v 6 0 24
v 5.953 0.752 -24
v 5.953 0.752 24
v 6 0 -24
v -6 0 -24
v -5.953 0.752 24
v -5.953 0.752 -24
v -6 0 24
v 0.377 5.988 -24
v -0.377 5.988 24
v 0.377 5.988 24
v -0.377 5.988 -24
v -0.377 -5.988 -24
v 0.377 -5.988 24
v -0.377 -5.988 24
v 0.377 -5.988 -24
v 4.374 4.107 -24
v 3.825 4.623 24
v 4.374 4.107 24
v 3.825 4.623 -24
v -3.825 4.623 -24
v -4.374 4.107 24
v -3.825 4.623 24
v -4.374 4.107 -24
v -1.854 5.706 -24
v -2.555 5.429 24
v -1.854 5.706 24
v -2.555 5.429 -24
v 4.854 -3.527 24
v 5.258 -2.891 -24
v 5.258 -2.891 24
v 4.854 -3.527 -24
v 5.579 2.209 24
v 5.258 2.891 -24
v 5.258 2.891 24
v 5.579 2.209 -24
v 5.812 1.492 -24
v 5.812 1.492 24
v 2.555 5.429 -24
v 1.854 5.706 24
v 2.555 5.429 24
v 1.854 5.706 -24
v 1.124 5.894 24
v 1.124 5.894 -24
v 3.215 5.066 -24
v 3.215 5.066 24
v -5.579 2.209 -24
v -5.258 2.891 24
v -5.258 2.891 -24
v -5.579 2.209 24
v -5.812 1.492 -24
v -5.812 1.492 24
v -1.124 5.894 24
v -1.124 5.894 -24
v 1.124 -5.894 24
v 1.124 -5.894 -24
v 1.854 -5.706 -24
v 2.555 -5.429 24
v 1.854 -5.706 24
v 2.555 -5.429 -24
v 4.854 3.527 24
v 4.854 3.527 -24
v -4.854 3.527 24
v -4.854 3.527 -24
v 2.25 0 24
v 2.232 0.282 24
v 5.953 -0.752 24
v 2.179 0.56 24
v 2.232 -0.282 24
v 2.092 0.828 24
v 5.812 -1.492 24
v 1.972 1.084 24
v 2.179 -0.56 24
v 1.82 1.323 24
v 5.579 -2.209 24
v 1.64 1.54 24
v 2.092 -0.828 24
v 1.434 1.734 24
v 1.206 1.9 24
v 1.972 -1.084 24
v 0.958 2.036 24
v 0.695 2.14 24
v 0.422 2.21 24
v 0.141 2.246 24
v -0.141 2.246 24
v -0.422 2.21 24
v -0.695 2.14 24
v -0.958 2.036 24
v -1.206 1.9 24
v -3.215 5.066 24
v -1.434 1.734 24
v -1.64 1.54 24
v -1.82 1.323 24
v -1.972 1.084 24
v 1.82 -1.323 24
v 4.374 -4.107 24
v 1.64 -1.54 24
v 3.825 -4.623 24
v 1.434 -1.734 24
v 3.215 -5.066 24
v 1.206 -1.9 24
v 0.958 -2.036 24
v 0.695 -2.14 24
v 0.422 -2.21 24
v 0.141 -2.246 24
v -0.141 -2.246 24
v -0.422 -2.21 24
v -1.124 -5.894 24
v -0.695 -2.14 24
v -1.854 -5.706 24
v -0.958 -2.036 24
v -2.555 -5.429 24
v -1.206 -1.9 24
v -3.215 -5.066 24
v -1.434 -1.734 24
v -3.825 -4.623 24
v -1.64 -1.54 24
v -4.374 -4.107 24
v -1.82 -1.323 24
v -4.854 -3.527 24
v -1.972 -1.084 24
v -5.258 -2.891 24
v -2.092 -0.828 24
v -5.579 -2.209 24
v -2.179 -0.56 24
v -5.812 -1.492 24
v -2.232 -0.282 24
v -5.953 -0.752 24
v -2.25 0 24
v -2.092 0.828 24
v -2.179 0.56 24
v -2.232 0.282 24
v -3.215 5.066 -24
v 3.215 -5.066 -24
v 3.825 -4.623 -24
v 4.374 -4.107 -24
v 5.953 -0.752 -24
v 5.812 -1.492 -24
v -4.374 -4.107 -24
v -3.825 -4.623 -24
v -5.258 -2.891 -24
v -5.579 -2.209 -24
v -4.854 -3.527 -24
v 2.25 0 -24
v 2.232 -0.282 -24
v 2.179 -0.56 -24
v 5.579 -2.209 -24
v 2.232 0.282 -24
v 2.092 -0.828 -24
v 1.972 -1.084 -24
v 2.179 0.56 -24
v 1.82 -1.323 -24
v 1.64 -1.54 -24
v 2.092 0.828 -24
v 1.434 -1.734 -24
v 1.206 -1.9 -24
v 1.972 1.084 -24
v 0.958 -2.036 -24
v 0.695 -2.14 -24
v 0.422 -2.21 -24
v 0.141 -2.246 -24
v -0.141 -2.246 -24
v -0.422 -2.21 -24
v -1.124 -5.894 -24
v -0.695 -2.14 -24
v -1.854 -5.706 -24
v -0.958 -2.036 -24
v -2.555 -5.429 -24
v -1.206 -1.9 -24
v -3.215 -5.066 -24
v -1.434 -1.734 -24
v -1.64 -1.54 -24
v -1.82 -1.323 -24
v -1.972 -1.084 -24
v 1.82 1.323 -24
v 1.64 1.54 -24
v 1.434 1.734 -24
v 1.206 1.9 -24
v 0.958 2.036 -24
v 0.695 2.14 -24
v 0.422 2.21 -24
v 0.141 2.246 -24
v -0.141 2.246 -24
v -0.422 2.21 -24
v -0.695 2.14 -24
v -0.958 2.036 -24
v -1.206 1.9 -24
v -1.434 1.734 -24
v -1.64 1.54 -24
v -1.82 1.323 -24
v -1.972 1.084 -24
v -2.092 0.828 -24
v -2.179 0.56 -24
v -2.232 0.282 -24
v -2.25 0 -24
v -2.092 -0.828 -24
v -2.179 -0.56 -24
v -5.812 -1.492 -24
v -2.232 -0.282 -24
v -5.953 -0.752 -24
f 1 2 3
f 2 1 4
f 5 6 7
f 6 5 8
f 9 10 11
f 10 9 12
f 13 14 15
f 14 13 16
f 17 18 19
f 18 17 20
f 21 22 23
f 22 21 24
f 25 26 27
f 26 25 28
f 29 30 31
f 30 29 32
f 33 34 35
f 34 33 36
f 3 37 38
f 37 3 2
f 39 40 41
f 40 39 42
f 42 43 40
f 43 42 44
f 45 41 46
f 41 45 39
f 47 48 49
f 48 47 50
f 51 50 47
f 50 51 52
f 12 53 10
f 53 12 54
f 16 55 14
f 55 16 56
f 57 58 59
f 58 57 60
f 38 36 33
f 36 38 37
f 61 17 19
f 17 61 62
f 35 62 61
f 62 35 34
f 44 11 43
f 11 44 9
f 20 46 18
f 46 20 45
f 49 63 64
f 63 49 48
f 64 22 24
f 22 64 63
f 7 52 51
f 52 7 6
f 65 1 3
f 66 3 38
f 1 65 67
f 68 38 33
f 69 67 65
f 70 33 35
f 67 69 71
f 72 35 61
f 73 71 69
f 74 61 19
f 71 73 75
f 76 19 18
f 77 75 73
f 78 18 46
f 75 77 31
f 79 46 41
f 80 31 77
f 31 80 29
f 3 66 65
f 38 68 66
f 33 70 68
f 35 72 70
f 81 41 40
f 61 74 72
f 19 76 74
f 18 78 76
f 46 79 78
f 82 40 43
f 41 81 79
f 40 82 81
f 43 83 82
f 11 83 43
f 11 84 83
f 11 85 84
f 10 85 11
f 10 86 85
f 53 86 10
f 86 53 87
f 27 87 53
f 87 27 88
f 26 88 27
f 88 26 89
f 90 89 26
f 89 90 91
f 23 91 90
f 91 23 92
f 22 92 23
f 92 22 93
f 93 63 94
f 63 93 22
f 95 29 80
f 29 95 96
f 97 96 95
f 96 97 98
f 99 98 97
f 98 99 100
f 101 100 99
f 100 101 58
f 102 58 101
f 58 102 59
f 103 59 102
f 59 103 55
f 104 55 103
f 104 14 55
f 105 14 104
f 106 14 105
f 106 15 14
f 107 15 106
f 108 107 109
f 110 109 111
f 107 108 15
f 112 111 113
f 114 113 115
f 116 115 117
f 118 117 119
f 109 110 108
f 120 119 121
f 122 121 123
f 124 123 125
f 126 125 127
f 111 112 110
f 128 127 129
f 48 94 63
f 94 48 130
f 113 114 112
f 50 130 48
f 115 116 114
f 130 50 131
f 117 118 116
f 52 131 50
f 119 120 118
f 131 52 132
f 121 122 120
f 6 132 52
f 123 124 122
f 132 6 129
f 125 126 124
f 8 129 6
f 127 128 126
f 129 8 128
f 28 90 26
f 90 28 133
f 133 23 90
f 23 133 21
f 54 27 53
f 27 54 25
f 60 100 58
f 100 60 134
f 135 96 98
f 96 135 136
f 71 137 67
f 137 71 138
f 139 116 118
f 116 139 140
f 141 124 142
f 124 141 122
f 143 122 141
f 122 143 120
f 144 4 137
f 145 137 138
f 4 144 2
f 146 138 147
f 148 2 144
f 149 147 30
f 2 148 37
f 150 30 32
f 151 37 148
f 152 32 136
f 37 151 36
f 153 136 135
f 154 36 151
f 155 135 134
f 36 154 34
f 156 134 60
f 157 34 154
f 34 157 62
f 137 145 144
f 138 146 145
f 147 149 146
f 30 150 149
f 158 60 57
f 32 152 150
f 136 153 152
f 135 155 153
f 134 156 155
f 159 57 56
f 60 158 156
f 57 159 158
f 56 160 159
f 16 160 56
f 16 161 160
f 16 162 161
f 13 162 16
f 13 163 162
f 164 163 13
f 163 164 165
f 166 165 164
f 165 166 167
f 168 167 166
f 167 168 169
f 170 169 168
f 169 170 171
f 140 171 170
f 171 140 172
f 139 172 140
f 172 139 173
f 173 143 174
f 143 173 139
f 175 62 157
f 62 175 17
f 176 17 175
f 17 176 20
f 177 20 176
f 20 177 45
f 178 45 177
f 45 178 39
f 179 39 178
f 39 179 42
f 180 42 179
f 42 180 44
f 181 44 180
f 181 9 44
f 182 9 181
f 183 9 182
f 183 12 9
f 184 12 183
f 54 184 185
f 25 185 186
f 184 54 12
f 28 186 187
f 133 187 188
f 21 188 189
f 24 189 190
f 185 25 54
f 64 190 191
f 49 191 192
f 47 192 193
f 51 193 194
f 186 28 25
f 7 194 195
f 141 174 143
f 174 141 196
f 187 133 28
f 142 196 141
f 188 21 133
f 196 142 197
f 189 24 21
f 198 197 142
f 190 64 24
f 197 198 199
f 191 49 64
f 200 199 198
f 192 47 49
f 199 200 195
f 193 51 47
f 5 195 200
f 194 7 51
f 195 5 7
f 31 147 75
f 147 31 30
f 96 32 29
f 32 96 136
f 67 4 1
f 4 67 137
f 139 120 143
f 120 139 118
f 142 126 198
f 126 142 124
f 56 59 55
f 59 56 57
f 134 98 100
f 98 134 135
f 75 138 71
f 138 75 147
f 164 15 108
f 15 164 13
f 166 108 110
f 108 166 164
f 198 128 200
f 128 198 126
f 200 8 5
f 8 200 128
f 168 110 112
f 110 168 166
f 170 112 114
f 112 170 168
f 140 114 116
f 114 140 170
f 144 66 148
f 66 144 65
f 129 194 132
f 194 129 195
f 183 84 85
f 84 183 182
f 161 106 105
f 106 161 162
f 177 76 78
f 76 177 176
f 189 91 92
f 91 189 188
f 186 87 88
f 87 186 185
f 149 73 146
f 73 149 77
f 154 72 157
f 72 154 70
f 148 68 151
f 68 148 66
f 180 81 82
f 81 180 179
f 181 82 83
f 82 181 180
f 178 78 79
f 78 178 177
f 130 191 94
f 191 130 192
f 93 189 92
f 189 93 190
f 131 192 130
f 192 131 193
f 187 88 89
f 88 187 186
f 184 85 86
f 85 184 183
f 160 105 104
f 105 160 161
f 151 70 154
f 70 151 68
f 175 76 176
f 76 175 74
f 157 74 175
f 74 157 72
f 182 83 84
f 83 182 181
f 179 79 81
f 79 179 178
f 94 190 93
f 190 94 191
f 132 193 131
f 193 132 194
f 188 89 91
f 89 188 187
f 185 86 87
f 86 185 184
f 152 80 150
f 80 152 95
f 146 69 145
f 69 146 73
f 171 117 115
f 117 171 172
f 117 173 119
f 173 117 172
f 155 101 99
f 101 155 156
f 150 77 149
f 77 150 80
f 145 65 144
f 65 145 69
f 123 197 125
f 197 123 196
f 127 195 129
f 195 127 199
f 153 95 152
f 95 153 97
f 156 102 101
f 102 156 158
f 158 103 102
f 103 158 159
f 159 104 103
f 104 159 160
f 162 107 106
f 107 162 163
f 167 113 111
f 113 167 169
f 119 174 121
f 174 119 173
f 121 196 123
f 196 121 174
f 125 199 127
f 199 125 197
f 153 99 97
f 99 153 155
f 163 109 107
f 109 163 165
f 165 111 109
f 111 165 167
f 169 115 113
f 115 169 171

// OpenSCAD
$fn = 50;


difference() {
	union() {
		translate(v = [0, 0, -24.0000000000]) {
			cylinder(h = 48, r = 6.0000000000);
		}
	}
	union() {
		translate(v = [0, 0, -100.0000000000]) {
			cylinder(h = 200, r = 2.2500000000);
		}
	}
}
